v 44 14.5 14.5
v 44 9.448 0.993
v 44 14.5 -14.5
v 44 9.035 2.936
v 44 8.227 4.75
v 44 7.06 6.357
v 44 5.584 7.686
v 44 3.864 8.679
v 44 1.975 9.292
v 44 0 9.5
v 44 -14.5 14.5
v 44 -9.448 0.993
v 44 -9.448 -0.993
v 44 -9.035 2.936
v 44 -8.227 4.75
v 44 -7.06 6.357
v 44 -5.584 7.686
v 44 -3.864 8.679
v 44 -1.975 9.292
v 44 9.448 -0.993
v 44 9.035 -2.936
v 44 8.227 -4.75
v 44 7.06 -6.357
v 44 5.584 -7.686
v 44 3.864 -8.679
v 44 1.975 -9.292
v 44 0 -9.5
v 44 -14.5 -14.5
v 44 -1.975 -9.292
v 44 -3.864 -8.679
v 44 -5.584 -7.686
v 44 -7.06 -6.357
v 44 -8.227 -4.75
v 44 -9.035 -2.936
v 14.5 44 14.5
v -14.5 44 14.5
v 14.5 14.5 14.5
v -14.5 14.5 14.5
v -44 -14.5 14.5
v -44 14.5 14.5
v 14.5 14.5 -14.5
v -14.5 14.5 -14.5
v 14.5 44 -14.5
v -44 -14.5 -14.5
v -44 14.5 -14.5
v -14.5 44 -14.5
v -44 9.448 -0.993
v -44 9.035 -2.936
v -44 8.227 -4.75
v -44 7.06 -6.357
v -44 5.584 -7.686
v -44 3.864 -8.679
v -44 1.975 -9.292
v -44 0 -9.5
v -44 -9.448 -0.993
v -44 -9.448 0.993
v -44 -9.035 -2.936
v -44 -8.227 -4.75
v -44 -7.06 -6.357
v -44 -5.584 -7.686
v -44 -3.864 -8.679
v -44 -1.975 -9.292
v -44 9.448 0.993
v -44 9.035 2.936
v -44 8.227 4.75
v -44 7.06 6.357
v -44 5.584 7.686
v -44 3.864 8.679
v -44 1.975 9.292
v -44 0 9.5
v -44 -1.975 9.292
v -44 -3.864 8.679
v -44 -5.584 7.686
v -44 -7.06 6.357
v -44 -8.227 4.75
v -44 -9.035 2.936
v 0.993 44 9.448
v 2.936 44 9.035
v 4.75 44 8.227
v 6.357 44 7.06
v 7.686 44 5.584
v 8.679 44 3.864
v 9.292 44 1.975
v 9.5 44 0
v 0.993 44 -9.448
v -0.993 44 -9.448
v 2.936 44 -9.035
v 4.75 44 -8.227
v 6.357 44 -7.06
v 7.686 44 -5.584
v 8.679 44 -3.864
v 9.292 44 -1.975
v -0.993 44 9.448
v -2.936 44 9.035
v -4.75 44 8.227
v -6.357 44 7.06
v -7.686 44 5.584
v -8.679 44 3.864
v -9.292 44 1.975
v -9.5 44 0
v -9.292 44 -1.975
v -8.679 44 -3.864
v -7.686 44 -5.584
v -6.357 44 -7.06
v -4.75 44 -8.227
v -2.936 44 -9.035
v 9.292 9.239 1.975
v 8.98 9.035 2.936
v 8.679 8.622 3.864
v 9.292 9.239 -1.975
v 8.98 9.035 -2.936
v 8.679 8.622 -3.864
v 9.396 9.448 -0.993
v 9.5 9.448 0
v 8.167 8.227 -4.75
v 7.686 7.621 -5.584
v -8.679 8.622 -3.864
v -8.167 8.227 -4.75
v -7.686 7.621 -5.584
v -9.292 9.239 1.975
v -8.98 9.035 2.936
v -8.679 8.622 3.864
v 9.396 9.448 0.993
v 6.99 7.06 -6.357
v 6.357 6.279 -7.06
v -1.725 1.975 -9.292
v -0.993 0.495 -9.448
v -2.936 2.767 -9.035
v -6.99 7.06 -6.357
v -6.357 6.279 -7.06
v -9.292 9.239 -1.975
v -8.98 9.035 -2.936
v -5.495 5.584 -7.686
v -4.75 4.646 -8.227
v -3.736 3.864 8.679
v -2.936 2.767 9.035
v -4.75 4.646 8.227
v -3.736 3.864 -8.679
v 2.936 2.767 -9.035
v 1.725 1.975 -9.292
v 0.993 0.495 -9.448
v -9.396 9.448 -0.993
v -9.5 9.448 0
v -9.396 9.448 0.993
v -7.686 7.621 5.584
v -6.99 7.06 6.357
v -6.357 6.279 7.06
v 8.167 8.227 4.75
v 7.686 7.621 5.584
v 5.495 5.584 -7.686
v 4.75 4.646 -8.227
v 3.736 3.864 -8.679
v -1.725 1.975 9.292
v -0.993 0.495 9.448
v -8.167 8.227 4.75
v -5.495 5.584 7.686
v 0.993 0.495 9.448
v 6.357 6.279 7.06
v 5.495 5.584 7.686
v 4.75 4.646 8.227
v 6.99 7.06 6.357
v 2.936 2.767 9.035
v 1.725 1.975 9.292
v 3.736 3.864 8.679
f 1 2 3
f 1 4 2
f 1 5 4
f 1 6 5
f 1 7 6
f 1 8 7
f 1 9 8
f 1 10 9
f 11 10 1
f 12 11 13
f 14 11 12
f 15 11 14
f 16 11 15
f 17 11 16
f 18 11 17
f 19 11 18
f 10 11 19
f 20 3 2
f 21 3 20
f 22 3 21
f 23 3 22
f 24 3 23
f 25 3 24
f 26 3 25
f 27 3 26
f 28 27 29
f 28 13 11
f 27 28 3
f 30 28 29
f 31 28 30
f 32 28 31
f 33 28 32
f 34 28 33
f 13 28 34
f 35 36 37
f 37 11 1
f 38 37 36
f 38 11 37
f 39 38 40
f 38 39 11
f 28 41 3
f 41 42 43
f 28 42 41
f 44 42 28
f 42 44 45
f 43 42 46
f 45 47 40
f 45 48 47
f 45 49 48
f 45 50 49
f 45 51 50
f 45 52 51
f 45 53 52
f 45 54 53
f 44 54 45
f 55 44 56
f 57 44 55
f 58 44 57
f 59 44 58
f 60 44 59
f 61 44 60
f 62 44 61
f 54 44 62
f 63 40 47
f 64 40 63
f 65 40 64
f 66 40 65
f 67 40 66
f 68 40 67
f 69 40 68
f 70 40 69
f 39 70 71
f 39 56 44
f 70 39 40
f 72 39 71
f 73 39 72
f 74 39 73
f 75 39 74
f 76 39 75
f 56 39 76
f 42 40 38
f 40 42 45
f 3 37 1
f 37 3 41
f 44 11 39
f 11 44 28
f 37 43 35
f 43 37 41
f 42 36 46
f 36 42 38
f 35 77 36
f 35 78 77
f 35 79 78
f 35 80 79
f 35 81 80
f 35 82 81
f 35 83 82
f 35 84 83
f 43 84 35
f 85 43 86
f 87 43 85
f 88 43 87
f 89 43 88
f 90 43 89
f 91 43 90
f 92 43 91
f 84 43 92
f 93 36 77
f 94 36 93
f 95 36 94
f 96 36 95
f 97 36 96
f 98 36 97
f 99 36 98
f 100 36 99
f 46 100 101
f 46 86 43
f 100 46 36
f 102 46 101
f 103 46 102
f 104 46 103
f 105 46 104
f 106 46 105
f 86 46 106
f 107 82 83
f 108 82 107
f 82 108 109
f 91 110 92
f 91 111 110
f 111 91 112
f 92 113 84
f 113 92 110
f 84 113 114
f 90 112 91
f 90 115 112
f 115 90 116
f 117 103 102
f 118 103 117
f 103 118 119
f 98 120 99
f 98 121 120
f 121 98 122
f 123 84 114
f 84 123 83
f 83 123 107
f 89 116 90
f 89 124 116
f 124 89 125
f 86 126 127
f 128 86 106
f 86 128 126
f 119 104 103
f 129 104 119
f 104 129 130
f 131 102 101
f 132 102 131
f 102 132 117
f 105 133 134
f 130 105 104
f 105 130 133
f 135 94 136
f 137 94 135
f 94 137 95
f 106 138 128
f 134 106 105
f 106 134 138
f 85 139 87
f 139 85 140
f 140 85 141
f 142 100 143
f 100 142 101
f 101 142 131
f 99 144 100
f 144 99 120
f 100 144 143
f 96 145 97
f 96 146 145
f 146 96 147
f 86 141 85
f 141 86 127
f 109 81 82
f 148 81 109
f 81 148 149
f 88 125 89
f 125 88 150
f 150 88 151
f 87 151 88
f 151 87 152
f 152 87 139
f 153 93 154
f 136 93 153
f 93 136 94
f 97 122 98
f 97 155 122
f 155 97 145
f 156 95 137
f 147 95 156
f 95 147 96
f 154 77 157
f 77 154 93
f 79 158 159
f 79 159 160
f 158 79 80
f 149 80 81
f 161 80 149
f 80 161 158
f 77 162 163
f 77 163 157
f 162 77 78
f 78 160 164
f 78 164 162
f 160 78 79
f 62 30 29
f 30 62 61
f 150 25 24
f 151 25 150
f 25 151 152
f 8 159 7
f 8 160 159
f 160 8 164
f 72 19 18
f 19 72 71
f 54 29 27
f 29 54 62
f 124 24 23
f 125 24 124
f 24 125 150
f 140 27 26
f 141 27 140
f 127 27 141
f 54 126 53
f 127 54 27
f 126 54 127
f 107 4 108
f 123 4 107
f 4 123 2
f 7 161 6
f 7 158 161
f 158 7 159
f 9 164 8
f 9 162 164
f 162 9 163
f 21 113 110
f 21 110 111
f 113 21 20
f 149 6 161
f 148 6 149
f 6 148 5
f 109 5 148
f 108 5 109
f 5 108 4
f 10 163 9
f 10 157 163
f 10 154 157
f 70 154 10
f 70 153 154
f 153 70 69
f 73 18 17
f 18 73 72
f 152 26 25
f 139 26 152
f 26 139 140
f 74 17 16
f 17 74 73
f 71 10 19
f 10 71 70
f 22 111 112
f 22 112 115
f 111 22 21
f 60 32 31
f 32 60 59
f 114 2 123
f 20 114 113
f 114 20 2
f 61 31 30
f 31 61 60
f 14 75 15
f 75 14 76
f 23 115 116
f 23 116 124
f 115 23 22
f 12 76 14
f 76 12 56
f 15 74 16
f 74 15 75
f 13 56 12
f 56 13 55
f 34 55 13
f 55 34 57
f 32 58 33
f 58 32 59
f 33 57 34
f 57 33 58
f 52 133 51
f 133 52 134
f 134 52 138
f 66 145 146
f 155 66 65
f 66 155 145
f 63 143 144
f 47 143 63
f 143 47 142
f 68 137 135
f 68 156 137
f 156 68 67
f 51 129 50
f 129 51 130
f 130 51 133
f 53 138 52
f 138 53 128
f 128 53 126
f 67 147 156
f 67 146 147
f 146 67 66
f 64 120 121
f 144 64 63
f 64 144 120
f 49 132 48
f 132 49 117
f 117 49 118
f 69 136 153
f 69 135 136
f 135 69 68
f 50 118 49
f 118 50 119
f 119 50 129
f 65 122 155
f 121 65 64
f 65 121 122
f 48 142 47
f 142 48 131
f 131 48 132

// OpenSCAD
tube_diameter = 19;
joint_length  = 40;
wall_width    =  5;

module case() {
    translate( [
        -1.1 * joint_length,
        -(1/2) * tube_diameter - wall_width,
        -(1/2) * tube_diameter - wall_width ] )
        cube( [
            2.2*joint_length,
            tube_diameter+ 2 * wall_width,
            tube_diameter+ 2 * wall_width ] );
    
    translate( [
        -(1/2) * tube_diameter - wall_width,
        0,
        -(1/2) * tube_diameter - wall_width ] )
        cube( [
            tube_diameter+ 2 * wall_width,
            1.1*joint_length,
            tube_diameter+ 2 * wall_width ] );
}

module tubing() {
    rotate( [-90,  0, 0] ) cylinder( h = 1.5 * joint_length, d = tube_diameter );
    rotate( [  0,  90, 0] ) cylinder( h = 1.5 * joint_length, d = tube_diameter) ;
    rotate( [  0, -90, 0] ) cylinder( h = 1.5 * joint_length, d = tube_diameter) ;

}

difference() {
    case();
    tubing();
}
